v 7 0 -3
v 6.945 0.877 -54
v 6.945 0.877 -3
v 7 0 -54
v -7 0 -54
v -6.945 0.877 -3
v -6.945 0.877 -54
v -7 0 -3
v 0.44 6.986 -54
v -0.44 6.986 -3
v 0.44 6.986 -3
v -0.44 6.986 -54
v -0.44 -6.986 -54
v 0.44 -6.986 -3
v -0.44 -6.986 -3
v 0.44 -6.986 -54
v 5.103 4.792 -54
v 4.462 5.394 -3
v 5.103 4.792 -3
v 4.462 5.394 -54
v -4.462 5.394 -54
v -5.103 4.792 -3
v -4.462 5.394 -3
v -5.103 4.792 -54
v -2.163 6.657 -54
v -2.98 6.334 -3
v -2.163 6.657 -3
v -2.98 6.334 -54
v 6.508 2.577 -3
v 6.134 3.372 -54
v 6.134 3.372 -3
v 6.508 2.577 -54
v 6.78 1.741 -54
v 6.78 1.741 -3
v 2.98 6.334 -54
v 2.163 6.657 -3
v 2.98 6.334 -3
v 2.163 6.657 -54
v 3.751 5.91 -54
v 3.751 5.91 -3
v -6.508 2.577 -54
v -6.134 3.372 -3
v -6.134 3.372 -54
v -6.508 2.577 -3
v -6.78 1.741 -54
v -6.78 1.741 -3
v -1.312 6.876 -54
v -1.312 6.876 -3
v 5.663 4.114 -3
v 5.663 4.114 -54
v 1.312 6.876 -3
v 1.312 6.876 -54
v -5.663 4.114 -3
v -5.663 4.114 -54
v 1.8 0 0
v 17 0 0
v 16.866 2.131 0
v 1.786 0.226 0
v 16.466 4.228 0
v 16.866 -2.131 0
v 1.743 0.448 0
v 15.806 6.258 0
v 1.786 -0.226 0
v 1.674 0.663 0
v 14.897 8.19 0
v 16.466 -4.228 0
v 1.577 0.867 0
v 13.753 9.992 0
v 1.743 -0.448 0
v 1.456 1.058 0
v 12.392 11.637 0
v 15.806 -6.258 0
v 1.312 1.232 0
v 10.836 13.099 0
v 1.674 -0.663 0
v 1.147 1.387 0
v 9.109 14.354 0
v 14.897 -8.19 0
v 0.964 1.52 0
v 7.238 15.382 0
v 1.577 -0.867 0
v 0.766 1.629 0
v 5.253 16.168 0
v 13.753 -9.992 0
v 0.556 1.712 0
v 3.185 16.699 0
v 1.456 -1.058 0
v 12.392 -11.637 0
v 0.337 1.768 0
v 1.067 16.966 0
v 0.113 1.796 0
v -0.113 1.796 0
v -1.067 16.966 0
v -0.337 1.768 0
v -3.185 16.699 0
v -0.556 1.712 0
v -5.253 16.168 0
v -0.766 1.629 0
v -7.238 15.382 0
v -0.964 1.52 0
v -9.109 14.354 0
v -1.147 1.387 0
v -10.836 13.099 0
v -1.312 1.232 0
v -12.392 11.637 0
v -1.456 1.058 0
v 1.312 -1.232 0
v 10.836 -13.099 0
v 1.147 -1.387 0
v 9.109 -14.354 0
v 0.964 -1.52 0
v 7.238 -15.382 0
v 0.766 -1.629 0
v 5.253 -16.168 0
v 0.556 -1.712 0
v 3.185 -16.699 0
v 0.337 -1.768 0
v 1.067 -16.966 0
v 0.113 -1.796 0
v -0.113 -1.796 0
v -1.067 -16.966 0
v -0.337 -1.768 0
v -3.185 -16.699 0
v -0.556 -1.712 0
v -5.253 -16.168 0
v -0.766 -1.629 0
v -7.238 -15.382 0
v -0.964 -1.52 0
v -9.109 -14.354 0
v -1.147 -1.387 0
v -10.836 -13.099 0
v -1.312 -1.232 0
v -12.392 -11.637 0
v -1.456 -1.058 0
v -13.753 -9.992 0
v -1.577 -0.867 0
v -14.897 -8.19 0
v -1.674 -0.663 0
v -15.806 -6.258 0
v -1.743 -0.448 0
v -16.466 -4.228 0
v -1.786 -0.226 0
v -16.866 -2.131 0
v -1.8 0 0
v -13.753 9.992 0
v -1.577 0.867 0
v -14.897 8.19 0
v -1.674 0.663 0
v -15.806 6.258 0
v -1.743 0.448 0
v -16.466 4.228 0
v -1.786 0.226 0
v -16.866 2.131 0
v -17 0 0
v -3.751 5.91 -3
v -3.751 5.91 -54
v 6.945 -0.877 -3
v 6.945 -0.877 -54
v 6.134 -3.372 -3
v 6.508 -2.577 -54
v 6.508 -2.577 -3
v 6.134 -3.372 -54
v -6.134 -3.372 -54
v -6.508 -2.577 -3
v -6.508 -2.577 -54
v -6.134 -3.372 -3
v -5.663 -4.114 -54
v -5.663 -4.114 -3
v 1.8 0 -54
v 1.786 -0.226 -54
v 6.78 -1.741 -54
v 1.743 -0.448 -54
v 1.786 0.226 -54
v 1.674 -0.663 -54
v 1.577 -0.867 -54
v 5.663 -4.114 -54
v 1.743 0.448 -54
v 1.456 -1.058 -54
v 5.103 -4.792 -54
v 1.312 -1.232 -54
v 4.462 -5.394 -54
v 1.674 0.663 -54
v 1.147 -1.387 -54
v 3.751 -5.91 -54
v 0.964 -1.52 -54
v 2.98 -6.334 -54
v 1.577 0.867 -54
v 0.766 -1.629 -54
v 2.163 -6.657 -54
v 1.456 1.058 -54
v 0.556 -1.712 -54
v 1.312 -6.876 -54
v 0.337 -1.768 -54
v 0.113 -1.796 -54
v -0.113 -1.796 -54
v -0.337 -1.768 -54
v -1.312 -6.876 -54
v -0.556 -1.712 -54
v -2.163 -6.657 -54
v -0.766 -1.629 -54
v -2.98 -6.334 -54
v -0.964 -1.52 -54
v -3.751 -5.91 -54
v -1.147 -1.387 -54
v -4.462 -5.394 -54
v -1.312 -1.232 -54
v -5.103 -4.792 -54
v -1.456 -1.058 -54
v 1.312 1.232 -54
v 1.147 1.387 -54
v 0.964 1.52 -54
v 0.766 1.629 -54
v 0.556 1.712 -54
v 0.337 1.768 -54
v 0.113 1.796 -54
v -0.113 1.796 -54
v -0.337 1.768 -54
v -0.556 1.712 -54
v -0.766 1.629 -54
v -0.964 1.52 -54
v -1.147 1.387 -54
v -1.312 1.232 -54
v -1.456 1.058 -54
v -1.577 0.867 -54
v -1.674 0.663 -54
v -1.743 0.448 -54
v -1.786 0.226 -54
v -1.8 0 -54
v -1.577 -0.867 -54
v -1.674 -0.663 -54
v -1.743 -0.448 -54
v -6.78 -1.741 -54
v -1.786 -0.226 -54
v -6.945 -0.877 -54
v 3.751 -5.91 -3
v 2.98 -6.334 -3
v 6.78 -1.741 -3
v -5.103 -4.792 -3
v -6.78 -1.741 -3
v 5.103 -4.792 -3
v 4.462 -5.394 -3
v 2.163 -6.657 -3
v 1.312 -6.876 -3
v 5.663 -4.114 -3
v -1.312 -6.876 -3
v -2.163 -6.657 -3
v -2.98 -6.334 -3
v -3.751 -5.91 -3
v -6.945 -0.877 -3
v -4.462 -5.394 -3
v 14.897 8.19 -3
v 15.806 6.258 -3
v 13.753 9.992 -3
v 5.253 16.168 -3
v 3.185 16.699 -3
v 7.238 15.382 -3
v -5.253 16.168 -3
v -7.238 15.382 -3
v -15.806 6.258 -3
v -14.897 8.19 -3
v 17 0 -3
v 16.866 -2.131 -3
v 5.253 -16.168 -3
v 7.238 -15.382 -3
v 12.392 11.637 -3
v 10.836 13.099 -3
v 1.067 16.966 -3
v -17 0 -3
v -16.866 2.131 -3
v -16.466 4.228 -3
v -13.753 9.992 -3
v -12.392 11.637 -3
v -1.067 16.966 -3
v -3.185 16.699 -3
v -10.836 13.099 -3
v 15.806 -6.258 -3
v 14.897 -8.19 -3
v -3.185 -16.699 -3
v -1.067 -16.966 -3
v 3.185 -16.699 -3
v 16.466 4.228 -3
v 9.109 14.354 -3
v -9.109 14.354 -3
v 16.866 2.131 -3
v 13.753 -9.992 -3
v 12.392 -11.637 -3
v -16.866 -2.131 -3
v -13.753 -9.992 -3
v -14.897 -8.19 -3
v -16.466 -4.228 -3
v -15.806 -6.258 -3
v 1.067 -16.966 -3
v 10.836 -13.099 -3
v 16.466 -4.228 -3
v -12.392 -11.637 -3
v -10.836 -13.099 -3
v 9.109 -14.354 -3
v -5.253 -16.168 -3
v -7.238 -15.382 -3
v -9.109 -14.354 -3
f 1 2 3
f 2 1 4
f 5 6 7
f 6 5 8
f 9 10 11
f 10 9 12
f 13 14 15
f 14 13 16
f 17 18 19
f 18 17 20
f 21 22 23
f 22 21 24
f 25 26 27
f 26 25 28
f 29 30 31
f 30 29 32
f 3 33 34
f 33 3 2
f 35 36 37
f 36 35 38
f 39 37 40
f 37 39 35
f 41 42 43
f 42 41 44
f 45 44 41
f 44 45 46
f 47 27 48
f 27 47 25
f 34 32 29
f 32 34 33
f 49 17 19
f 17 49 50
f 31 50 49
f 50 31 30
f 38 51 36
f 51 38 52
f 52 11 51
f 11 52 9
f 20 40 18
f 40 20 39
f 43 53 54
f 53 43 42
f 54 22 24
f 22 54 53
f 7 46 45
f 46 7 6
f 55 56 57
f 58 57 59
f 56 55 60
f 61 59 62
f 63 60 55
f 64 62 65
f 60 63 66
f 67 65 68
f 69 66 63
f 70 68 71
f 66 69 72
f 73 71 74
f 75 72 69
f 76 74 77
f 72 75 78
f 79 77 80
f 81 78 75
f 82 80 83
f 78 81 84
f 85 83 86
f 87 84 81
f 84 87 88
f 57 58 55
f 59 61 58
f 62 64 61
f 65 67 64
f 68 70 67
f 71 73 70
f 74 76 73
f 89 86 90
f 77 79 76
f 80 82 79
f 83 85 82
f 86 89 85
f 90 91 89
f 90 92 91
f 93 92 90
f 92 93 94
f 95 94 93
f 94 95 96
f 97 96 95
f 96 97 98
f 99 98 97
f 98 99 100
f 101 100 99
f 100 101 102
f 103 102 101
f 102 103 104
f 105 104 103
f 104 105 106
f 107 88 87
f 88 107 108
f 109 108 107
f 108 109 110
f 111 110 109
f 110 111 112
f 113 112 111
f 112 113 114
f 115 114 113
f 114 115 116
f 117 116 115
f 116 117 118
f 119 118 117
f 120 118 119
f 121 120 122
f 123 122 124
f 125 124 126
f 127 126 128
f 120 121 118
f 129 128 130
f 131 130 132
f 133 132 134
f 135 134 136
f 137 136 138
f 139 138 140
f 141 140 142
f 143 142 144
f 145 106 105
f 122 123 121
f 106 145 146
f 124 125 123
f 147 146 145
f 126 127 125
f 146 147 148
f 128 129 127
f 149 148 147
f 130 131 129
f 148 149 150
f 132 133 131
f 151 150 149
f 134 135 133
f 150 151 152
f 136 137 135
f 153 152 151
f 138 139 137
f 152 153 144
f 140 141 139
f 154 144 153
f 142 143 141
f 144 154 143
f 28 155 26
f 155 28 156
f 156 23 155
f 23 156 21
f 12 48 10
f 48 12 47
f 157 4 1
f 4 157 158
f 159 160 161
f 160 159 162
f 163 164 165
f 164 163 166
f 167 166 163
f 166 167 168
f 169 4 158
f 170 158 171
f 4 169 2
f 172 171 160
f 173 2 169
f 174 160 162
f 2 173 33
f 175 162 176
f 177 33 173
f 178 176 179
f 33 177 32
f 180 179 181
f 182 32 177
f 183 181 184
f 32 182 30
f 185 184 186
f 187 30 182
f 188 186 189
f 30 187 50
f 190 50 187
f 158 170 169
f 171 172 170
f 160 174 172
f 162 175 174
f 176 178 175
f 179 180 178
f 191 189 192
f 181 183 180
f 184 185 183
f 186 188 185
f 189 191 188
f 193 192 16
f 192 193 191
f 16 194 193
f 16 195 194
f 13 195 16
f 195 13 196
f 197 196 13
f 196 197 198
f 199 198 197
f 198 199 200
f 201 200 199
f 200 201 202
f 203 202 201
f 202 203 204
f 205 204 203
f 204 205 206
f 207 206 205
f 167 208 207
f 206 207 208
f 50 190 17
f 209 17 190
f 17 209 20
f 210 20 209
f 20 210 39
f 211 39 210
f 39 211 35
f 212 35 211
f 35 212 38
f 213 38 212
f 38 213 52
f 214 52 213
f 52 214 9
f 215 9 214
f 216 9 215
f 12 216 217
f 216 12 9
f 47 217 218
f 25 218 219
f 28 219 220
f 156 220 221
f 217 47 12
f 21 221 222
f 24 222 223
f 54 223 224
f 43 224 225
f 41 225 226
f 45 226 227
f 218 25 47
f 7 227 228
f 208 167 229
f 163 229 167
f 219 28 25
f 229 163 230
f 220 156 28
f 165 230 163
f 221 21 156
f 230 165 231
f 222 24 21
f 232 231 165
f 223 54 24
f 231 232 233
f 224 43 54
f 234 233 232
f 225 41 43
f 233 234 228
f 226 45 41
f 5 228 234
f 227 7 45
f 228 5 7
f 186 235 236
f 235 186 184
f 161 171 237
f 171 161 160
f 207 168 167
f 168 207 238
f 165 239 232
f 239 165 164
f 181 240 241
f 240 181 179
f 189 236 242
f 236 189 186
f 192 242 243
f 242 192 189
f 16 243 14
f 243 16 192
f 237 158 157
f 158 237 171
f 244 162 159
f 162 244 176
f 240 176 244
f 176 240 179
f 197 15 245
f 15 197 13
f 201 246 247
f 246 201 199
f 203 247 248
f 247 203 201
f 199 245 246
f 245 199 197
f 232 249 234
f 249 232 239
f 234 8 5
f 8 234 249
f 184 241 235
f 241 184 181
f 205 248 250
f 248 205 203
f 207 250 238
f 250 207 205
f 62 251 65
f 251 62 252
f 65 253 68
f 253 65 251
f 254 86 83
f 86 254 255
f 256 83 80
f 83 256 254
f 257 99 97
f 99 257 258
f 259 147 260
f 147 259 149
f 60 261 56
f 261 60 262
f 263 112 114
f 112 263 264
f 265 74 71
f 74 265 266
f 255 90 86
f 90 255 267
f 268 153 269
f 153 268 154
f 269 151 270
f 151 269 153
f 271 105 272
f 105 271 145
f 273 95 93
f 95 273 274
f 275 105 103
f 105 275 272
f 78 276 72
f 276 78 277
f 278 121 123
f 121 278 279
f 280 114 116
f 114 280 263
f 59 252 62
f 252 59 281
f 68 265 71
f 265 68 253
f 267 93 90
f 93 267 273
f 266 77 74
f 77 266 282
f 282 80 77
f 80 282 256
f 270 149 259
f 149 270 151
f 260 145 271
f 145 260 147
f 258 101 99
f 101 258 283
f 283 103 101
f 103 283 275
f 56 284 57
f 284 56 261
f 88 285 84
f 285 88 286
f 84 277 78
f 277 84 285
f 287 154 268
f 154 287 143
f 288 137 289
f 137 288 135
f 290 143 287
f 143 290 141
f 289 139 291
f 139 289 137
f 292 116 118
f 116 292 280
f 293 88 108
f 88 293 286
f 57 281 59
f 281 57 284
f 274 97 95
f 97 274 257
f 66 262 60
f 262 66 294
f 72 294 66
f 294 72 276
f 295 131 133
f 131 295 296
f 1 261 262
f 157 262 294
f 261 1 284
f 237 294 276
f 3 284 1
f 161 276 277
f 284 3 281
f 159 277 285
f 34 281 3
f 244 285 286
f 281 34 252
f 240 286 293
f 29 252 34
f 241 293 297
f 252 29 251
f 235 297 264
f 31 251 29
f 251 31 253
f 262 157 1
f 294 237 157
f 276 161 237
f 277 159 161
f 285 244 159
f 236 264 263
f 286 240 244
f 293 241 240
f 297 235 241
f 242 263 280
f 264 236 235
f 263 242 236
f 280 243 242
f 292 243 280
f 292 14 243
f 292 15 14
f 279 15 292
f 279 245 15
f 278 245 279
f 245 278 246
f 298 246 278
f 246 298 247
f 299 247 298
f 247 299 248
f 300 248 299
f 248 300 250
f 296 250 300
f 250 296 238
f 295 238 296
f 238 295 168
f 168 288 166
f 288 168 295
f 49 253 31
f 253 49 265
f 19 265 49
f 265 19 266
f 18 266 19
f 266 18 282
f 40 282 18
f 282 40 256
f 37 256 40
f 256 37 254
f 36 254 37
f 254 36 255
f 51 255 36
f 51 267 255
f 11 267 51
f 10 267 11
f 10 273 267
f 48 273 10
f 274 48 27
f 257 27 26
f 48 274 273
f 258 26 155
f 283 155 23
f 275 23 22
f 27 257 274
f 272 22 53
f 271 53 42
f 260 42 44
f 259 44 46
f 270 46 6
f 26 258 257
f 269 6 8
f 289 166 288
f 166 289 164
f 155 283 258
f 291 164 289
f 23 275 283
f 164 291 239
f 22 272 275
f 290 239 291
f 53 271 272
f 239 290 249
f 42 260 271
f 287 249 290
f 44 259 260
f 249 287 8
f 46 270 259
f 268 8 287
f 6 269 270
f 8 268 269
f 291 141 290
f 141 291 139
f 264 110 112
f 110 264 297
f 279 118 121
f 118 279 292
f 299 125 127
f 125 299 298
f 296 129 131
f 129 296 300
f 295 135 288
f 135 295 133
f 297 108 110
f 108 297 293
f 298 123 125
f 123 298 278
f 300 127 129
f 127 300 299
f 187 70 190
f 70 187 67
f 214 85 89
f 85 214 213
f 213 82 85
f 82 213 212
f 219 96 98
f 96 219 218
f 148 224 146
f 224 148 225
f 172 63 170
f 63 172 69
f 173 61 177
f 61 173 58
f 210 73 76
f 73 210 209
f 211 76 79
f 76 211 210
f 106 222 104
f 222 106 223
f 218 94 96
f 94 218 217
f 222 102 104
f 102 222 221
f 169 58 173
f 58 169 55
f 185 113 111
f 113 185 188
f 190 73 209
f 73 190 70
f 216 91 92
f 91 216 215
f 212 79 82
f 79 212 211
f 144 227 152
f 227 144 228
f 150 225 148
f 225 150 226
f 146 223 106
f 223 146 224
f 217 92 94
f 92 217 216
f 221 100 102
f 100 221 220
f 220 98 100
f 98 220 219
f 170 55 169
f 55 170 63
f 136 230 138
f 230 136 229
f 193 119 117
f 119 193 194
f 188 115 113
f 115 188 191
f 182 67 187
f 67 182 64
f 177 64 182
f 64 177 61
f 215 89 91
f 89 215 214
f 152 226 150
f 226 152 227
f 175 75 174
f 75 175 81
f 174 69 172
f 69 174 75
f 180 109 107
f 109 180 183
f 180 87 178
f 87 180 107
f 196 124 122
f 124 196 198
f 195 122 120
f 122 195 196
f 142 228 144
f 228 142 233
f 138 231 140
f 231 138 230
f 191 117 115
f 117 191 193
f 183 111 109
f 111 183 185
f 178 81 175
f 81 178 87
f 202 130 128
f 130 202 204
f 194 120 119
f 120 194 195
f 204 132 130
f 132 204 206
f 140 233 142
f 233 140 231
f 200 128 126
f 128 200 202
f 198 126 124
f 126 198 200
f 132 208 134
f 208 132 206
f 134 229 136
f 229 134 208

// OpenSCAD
$fn = 50;


difference() {
	union() {
		translate(v = [0, 0, -54.0000000000]) {
			cylinder(h = 54, r = 7.0000000000);
		}
		translate(v = [0, 0, -3.0000000000]) {
			cylinder(h = 3, r = 17.0000000000);
		}
	}
	union() {
		#translate(v = [0, 0, -54]) {
			cylinder(h = 54, r = 1.8000000000);
		}
	}
}
